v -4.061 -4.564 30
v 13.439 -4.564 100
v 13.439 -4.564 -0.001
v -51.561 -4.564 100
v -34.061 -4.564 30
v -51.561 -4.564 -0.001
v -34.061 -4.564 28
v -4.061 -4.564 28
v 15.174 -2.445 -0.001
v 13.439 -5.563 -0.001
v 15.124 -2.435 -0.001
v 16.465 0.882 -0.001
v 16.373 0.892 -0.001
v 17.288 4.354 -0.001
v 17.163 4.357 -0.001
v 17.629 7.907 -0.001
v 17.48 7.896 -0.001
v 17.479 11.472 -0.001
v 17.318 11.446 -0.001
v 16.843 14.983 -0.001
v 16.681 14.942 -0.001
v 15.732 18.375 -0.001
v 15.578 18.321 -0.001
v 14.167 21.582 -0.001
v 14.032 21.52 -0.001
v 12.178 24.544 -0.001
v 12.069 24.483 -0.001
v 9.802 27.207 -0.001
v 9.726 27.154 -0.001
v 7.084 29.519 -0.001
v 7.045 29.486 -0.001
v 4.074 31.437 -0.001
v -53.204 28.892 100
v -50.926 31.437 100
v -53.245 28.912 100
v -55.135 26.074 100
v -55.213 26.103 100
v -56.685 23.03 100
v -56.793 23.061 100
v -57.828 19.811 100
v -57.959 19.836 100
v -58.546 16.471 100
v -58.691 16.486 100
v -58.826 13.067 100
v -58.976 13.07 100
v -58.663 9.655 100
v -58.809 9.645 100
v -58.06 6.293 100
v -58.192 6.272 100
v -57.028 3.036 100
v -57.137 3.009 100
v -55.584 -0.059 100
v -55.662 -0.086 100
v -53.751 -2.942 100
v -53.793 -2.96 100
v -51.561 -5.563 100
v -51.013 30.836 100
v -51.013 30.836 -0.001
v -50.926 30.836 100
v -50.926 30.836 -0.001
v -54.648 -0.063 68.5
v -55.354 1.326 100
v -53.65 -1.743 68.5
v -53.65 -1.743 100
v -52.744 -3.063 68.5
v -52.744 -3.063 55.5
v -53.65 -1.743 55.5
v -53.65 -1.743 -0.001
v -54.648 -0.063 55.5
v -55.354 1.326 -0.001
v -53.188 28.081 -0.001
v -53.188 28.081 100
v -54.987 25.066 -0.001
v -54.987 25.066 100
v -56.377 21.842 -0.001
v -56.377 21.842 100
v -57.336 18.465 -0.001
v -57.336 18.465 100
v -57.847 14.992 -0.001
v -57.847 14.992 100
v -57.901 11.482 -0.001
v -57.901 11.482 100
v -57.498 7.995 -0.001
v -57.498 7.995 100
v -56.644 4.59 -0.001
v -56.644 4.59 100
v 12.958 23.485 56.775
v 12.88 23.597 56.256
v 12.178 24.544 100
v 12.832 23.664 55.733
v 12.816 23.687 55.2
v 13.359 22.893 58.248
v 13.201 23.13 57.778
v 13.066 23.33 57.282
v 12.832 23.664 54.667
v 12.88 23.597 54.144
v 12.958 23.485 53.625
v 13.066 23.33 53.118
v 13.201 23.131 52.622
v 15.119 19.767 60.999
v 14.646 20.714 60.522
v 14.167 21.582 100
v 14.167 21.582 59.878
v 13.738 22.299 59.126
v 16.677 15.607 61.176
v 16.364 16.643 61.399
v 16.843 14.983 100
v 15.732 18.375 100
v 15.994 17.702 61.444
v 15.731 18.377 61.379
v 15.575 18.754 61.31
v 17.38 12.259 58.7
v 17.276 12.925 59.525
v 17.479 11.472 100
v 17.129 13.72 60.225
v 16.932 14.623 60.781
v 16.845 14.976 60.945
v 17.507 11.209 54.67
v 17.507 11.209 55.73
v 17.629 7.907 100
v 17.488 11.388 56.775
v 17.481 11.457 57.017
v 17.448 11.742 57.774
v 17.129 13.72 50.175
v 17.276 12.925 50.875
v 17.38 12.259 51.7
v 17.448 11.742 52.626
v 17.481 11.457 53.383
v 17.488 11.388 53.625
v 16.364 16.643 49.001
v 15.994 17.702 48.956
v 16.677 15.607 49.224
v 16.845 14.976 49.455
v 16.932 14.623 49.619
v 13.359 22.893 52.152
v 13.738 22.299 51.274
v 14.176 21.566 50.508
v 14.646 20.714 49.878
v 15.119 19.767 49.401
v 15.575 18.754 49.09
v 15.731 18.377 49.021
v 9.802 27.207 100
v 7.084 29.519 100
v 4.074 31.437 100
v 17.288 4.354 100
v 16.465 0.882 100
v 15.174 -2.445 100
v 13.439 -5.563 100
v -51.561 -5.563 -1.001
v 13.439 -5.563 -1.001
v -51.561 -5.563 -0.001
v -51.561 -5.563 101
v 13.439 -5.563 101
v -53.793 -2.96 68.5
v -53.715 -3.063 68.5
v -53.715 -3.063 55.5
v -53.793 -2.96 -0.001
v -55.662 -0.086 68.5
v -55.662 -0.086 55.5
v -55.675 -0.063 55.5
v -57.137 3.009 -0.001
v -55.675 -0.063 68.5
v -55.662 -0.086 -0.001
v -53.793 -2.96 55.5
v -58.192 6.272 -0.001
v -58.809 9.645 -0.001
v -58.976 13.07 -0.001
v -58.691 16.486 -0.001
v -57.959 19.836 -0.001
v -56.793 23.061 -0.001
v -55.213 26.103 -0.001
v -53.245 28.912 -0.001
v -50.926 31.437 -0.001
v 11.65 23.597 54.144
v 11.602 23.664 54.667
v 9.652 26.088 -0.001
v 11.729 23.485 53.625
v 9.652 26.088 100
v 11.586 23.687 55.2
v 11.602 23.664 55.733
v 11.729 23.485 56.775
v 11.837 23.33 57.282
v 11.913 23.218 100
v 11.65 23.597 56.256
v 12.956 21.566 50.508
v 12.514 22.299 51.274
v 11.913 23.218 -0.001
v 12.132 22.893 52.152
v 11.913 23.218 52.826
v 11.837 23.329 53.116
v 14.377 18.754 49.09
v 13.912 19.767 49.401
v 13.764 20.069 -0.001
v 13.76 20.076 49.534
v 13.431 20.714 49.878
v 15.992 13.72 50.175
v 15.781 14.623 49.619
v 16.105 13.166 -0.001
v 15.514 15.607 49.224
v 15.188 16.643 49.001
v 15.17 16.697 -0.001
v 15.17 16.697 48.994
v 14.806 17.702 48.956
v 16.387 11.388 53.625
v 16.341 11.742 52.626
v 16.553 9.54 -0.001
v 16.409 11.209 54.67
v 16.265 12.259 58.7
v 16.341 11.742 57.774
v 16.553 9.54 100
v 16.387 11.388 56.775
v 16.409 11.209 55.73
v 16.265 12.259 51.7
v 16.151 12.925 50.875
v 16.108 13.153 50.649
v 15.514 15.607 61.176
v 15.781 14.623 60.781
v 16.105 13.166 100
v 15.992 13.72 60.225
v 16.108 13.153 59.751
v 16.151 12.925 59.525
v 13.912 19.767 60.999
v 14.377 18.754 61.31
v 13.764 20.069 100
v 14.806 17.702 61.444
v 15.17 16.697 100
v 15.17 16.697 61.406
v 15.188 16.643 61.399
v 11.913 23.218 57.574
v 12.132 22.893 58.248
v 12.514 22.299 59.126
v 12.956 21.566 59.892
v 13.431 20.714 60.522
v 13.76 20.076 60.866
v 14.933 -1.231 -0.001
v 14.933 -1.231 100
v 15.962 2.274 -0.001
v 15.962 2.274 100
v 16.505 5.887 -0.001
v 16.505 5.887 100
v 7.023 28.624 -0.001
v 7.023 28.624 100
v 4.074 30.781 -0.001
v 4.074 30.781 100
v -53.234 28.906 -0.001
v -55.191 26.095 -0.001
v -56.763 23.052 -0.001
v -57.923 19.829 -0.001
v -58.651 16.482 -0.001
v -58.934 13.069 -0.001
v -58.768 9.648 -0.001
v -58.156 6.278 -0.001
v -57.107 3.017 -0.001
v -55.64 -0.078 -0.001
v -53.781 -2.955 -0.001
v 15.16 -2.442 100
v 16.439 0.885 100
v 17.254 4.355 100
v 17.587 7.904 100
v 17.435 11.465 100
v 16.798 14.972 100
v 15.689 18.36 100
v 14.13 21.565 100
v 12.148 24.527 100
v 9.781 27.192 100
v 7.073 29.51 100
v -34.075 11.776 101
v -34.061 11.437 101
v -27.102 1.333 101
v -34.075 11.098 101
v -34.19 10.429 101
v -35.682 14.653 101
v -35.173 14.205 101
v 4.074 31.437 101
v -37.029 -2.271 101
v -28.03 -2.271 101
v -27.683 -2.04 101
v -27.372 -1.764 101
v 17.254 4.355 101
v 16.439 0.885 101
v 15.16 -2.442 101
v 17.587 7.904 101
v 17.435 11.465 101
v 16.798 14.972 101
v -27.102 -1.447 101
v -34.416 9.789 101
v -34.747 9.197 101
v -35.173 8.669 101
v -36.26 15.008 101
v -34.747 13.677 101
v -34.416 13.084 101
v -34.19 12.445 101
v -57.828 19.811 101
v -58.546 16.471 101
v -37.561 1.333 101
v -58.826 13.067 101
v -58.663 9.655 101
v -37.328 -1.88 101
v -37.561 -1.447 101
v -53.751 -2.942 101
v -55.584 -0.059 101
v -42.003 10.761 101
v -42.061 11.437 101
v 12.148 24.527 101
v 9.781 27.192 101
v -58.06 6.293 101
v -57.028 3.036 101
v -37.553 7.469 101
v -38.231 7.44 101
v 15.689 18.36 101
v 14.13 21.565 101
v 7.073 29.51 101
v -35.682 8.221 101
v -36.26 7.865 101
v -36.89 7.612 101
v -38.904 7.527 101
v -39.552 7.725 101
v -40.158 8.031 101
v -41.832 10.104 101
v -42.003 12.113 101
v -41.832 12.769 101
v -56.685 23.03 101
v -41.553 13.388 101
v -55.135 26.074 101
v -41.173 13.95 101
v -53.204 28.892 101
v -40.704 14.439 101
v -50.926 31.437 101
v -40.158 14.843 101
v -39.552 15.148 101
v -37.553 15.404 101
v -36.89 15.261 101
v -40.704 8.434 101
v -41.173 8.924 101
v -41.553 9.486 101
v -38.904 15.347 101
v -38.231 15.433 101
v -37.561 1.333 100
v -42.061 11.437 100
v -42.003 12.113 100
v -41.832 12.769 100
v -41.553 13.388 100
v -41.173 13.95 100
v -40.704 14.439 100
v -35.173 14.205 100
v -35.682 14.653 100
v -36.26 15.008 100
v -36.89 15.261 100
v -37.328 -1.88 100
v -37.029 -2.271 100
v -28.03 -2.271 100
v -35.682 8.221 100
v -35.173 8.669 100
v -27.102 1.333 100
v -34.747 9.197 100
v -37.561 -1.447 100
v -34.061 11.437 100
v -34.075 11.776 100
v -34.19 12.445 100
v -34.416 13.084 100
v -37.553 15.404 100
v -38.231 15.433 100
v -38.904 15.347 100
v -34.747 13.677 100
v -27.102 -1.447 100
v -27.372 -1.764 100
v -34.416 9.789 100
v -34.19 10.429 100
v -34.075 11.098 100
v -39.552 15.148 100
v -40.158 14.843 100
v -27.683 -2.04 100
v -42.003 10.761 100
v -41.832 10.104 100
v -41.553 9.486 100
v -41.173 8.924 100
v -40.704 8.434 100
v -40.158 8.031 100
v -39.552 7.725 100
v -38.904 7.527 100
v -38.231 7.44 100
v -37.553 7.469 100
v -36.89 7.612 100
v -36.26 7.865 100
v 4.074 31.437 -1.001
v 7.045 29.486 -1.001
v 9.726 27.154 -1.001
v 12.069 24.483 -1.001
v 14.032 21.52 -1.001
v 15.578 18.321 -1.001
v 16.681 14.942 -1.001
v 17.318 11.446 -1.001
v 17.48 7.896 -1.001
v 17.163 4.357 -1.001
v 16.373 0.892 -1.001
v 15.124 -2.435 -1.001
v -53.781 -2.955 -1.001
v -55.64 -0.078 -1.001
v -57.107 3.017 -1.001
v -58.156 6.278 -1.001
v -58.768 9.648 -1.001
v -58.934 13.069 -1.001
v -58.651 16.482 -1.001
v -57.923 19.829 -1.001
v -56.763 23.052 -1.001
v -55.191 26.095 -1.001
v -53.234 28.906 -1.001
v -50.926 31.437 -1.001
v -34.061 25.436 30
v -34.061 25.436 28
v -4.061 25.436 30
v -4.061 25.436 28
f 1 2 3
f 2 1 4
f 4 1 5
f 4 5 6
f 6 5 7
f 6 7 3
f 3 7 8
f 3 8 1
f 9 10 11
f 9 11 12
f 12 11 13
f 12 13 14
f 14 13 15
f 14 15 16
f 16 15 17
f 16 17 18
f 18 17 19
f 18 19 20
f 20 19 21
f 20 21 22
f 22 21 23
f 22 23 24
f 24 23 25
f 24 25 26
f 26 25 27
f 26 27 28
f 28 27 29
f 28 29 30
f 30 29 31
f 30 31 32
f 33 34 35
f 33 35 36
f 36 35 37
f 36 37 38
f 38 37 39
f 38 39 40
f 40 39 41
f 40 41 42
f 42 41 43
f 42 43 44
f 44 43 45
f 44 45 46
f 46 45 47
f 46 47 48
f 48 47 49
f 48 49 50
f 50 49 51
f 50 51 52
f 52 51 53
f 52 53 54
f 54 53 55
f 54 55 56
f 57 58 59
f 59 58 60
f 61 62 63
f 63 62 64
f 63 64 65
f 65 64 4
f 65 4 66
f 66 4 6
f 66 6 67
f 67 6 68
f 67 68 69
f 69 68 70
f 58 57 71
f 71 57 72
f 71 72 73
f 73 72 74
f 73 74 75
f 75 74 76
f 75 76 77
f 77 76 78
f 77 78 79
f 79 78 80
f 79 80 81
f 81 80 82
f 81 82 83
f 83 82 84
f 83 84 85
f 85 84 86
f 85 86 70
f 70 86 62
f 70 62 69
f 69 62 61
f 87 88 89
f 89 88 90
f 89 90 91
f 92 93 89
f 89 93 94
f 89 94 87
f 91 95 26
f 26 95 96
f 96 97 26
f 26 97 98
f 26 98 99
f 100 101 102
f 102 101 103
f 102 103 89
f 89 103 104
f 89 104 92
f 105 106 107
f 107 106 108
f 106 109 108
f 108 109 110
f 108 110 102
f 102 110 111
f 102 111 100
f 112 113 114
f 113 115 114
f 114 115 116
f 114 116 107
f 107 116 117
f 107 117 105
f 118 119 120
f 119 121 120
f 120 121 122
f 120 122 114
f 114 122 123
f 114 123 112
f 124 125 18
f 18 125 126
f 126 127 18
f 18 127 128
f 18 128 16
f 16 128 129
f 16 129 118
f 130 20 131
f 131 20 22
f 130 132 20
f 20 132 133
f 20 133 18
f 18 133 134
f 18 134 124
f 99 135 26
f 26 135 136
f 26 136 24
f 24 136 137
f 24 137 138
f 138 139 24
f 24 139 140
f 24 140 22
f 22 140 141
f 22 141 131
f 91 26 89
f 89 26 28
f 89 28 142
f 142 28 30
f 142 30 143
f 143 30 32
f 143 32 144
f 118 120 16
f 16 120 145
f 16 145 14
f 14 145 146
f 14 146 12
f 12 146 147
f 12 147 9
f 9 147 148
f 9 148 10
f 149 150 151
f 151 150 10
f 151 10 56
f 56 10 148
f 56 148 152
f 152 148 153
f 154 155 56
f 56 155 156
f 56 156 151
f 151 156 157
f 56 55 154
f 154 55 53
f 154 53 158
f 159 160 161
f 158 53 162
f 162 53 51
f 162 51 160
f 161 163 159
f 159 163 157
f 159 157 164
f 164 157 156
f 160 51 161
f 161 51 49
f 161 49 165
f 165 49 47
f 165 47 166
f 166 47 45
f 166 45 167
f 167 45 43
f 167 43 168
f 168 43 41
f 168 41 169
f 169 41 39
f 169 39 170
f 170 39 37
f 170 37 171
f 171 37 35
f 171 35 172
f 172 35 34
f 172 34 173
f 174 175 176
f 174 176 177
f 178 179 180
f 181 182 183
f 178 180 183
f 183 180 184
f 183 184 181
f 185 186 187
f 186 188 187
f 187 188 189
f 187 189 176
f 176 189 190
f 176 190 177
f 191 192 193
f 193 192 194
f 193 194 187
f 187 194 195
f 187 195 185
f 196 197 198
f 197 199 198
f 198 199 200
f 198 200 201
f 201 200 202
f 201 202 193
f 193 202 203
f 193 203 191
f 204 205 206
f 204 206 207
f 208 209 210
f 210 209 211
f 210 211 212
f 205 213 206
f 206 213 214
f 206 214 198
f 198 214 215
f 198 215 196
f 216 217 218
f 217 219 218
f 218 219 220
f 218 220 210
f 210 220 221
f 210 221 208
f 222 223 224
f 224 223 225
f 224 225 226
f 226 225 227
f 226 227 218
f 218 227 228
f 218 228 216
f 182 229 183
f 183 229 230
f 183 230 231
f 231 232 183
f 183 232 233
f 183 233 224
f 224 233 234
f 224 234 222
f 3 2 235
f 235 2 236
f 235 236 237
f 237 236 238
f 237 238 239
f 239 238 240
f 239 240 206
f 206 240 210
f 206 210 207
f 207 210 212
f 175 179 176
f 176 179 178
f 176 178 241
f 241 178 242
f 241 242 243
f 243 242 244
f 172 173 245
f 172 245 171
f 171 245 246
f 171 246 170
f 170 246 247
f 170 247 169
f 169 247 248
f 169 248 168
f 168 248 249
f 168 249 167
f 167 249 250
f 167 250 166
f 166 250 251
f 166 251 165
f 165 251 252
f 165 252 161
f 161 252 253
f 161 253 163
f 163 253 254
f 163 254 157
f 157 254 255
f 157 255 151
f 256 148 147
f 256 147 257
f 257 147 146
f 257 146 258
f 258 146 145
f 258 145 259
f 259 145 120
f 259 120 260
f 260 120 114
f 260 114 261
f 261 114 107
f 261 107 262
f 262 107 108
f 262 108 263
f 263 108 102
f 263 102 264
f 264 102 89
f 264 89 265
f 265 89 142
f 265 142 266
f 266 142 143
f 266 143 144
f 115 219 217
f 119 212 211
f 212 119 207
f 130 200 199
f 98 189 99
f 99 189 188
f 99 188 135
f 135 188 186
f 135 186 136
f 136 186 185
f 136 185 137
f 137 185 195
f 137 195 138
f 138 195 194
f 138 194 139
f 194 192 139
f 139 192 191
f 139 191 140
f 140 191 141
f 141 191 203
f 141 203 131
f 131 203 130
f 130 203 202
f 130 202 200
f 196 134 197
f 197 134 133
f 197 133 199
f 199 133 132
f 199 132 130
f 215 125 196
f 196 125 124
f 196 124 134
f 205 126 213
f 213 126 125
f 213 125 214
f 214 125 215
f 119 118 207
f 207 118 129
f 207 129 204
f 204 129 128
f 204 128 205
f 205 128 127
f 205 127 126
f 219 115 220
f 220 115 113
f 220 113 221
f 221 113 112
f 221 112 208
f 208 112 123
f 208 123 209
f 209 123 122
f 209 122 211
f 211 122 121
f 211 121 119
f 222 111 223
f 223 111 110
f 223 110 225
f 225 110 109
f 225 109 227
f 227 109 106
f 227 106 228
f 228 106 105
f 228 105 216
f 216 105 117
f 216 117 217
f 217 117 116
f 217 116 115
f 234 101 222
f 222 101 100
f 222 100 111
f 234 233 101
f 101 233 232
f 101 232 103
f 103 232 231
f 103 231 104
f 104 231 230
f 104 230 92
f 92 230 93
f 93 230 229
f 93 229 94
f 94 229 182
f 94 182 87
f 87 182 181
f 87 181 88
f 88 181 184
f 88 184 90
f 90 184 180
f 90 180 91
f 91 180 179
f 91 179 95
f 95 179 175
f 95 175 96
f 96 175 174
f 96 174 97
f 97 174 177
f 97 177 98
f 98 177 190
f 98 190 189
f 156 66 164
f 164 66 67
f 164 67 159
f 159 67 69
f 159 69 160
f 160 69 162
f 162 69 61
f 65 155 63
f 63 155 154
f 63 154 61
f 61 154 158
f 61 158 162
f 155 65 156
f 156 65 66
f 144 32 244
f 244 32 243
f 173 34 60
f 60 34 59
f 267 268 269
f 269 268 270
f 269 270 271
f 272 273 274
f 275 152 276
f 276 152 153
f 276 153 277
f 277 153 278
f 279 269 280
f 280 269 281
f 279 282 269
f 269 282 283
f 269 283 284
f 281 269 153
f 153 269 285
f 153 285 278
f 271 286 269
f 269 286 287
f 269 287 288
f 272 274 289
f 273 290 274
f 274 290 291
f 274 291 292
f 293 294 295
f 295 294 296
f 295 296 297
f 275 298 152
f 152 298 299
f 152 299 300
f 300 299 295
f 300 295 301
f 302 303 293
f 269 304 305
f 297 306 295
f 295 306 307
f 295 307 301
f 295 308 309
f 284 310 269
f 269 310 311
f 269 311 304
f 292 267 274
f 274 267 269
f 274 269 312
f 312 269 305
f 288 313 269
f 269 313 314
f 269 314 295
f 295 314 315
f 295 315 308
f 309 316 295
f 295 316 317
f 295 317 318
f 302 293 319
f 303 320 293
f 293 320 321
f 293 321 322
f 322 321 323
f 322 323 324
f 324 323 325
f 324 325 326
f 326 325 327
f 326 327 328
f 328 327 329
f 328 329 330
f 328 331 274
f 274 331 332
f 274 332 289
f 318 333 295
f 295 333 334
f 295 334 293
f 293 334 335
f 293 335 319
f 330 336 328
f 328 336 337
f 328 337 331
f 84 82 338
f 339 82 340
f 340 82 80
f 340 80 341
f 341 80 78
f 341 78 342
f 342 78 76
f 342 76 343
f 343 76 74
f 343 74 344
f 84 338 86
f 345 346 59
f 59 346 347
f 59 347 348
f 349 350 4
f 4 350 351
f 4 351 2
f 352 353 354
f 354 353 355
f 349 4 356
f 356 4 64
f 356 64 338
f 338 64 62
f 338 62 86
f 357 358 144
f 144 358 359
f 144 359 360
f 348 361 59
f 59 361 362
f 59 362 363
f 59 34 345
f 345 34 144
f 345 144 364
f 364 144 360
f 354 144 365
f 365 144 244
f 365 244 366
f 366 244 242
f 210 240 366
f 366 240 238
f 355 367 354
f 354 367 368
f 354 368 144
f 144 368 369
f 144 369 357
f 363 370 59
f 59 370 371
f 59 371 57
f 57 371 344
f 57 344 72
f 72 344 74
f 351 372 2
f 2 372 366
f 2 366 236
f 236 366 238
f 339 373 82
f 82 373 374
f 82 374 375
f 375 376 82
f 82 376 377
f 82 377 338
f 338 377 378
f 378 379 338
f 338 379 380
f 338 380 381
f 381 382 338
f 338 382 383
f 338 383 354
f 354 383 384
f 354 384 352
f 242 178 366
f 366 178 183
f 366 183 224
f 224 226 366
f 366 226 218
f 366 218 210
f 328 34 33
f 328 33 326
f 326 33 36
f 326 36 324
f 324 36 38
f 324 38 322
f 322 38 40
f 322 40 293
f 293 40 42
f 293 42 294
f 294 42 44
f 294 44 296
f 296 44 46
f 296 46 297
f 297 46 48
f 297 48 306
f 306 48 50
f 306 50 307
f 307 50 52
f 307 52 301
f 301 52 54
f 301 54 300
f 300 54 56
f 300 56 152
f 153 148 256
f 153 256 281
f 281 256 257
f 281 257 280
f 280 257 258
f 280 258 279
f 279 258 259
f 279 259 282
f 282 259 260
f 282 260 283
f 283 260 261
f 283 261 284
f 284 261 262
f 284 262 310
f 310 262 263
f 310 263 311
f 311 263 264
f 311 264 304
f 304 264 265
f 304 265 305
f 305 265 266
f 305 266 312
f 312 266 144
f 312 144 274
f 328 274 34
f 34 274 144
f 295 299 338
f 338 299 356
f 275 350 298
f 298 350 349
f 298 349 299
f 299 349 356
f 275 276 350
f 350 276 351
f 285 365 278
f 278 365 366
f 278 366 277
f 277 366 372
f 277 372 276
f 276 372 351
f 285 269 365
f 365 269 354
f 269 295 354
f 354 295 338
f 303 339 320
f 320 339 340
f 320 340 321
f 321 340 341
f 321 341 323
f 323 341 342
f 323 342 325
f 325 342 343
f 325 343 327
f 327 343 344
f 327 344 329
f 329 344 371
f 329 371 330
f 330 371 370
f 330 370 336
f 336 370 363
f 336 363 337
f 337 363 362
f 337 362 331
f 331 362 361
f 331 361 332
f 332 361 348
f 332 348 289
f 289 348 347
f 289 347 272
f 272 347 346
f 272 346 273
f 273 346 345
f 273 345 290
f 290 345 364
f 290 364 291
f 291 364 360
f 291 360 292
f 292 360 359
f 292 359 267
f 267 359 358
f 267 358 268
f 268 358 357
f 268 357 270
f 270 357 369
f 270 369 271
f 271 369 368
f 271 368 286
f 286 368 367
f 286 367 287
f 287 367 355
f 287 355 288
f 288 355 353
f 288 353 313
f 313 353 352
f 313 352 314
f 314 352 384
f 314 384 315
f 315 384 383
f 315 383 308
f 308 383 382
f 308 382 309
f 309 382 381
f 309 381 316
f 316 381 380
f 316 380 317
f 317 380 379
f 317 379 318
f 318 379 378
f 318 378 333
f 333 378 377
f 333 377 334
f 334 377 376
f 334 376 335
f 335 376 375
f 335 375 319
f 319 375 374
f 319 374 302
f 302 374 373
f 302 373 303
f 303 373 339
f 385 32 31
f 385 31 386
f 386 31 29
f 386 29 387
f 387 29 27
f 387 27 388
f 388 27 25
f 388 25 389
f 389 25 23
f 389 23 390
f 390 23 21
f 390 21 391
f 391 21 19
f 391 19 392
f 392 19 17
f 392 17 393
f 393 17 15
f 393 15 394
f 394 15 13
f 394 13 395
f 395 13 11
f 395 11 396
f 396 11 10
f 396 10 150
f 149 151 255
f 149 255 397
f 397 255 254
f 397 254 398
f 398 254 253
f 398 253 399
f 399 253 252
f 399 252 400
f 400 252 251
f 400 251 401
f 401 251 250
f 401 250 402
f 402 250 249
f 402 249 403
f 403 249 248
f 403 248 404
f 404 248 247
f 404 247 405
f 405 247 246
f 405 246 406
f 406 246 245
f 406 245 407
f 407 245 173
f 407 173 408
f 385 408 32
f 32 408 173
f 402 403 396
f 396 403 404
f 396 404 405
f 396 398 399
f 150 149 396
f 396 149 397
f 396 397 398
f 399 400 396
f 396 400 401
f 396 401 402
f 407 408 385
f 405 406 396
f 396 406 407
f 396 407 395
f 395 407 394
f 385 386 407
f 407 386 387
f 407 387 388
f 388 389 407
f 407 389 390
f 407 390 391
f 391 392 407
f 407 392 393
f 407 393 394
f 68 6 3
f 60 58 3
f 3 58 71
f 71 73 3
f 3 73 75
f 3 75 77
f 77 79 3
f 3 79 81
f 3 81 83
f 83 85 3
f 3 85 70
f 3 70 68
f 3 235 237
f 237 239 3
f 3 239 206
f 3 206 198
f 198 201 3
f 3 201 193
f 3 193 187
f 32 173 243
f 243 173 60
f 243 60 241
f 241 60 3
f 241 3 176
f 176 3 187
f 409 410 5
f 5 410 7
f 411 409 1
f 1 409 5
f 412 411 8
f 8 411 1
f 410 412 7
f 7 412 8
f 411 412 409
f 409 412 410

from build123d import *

# Parameters (mm, degrees)
BOSS_EXTRUDE6_DEPTH      = 100
BOSS_EXTRUDE6_DEPTH_BACK = 0.001
SKETCH19_R               = 6.25
SIDE_BUTTON_DEPTH        = 10
SKETCH21_W               = 13
SKETCH21_H               = 3
SD_DEPTH                 = 10
SKETCH_5_W               = 55
SKETCH_5_H               = 100.001
CUT_EXTRUDE_4_DEPTH      = 7
SKETCH_4_R               = 4
PORTS_DEPTH              = 1
TOP_COVER_DEPTH          = 1
SKETCH_7_W               = 30
SKETCH_7_H               = 2
EXTRUDE_5_DEPTH          = 30


with BuildPart() as part:
    # Sketch11 → Boss-Extrude6 (new, two sides: drawn at the far end of the back side and taken through both)
    with BuildSketch(Plane.XY.offset(-BOSS_EXTRUDE6_DEPTH_BACK)):
        with BuildLine():
            Line((-50.925767273, 31.436762529), (4.074232727, 31.436762529))
            ThreePointArc((4.074232727, 31.436762529), (16.843059589, 14.983457432), (13.439015431, -5.563237471))
            Line((13.439015431, -5.563237471), (-51.560984569, -5.563237471))
            ThreePointArc((-51.560984569, -5.563237471), (-58.976171577, 13.069519435), (-50.925767273, 31.436762529))
        make_face()
        with BuildLine():
            Line((-51.012961367, 30.835508878), (3.987038633, 30.835508878))
            ThreePointArc((3.987038633, 30.835508878), (15.684365135, 14.996890968), (13.439015431, -4.564491122))
            Line((13.439015431, -4.564491122), (-51.560984569, -4.564491122))
            ThreePointArc((-51.560984569, -4.564491122), (-57.931377732, 13.23837012), (-51.012961367, 30.835508878))
        make_face(mode=Mode.SUBTRACT)
    extrude(amount=BOSS_EXTRUDE6_DEPTH + BOSS_EXTRUDE6_DEPTH_BACK)

    # Sketch19 → side button (cut)
    with BuildSketch(Plane(origin=(17.637860169, 0, 0), x_dir=(0, 0, -1), z_dir=(1, 0, 0))):
        with Locations(Location((-55.2, 17.436762529, 0), (0, 0, 90))):
            Circle(SKETCH19_R)
    extrude(amount=-SIDE_BUTTON_DEPTH, mode=Mode.SUBTRACT)

    # Sketch21 → sd (cut)
    with BuildSketch(Plane.ZY.offset(58.980002369)):
        with Locations((62, -1.563237471)):
            Rectangle(SKETCH21_W, SKETCH21_H)
    extrude(amount=-SD_DEPTH, mode=Mode.SUBTRACT)

    # 草图5 → 切除-拉伸4 (cut)
    with BuildSketch(Plane(origin=(0, 31.436762529, 0), x_dir=(1, 0, 0), z_dir=(0, 1, 0))):
        with Locations((-23.425767273, -49.9995)):
            Rectangle(SKETCH_5_W, SKETCH_5_H)
    extrude(amount=-CUT_EXTRUDE_4_DEPTH, mode=Mode.SUBTRACT)

    # 草图4 → ports (add)
    with BuildSketch(Plane.XY.offset(100)):
        with BuildLine():
            Line((-50.925767273, 31.436762529), (4.074232727, 31.436762529))
            ThreePointArc((4.074232727, 31.436762529), (16.797971673, 14.972045579), (13.439015431, -5.563237471))
            Line((13.439015431, -5.563237471), (-51.560984569, -5.563237471))
            ThreePointArc((-51.560984569, -5.563237471), (-58.825710556, 13.066936315), (-50.925767273, 31.436762529))
        make_face()
        with Locations((-38.060984569, 11.436762529)):
            Circle(SKETCH_4_R, mode=Mode.SUBTRACT)
        with BuildLine():
            Line((-37.560984569, 1.332835104), (-27.101744103, 1.332835104))
            Line((-27.101744103, 1.332835104), (-27.101744103, -1.446793765))
            ThreePointArc((-27.101744103, -1.446793765), (-27.522930097, -1.907180738), (-28.029632197, -2.271332887))
            Line((-28.029632197, -2.271332887), (-37.028696773, -2.271332887))
            ThreePointArc((-37.028696773, -2.271332887), (-37.327749623, -1.880307962), (-37.560984569, -1.446793765))
            Line((-37.560984569, -1.446793765), (-37.560984569, 1.332835104))
        make_face(mode=Mode.SUBTRACT)
    extrude(amount=PORTS_DEPTH)

    # 草图6 → top cover (add)
    with BuildSketch(Plane(origin=(0, 0, -0.001), x_dir=(-1, 0, 0), z_dir=(0, 0, -1))):
        with BuildLine():
            Line((-4.074232727, 31.436762529), (50.925767273, 31.436762529))
            ThreePointArc((50.925767273, 31.436762529), (58.934474425, 13.068803577), (51.560984569, -5.563237471))
            Line((51.560984569, -5.563237471), (-13.439015431, -5.563237471))
            ThreePointArc((-13.439015431, -5.563237471), (-16.680513275, 14.942316596), (-4.074232727, 31.436762529))
        make_face()
    extrude(amount=TOP_COVER_DEPTH)

    # 草图7 → 凸台-拉伸5 (add)
    with BuildSketch(Plane(origin=(0, -4.564491122, 0), x_dir=(1, 0, 0), z_dir=(0, 1, 0))):
        with Locations((-19.060984569, -29)):
            Rectangle(SKETCH_7_W, SKETCH_7_H)
    extrude(amount=EXTRUDE_5_DEPTH)


solid = part.part
